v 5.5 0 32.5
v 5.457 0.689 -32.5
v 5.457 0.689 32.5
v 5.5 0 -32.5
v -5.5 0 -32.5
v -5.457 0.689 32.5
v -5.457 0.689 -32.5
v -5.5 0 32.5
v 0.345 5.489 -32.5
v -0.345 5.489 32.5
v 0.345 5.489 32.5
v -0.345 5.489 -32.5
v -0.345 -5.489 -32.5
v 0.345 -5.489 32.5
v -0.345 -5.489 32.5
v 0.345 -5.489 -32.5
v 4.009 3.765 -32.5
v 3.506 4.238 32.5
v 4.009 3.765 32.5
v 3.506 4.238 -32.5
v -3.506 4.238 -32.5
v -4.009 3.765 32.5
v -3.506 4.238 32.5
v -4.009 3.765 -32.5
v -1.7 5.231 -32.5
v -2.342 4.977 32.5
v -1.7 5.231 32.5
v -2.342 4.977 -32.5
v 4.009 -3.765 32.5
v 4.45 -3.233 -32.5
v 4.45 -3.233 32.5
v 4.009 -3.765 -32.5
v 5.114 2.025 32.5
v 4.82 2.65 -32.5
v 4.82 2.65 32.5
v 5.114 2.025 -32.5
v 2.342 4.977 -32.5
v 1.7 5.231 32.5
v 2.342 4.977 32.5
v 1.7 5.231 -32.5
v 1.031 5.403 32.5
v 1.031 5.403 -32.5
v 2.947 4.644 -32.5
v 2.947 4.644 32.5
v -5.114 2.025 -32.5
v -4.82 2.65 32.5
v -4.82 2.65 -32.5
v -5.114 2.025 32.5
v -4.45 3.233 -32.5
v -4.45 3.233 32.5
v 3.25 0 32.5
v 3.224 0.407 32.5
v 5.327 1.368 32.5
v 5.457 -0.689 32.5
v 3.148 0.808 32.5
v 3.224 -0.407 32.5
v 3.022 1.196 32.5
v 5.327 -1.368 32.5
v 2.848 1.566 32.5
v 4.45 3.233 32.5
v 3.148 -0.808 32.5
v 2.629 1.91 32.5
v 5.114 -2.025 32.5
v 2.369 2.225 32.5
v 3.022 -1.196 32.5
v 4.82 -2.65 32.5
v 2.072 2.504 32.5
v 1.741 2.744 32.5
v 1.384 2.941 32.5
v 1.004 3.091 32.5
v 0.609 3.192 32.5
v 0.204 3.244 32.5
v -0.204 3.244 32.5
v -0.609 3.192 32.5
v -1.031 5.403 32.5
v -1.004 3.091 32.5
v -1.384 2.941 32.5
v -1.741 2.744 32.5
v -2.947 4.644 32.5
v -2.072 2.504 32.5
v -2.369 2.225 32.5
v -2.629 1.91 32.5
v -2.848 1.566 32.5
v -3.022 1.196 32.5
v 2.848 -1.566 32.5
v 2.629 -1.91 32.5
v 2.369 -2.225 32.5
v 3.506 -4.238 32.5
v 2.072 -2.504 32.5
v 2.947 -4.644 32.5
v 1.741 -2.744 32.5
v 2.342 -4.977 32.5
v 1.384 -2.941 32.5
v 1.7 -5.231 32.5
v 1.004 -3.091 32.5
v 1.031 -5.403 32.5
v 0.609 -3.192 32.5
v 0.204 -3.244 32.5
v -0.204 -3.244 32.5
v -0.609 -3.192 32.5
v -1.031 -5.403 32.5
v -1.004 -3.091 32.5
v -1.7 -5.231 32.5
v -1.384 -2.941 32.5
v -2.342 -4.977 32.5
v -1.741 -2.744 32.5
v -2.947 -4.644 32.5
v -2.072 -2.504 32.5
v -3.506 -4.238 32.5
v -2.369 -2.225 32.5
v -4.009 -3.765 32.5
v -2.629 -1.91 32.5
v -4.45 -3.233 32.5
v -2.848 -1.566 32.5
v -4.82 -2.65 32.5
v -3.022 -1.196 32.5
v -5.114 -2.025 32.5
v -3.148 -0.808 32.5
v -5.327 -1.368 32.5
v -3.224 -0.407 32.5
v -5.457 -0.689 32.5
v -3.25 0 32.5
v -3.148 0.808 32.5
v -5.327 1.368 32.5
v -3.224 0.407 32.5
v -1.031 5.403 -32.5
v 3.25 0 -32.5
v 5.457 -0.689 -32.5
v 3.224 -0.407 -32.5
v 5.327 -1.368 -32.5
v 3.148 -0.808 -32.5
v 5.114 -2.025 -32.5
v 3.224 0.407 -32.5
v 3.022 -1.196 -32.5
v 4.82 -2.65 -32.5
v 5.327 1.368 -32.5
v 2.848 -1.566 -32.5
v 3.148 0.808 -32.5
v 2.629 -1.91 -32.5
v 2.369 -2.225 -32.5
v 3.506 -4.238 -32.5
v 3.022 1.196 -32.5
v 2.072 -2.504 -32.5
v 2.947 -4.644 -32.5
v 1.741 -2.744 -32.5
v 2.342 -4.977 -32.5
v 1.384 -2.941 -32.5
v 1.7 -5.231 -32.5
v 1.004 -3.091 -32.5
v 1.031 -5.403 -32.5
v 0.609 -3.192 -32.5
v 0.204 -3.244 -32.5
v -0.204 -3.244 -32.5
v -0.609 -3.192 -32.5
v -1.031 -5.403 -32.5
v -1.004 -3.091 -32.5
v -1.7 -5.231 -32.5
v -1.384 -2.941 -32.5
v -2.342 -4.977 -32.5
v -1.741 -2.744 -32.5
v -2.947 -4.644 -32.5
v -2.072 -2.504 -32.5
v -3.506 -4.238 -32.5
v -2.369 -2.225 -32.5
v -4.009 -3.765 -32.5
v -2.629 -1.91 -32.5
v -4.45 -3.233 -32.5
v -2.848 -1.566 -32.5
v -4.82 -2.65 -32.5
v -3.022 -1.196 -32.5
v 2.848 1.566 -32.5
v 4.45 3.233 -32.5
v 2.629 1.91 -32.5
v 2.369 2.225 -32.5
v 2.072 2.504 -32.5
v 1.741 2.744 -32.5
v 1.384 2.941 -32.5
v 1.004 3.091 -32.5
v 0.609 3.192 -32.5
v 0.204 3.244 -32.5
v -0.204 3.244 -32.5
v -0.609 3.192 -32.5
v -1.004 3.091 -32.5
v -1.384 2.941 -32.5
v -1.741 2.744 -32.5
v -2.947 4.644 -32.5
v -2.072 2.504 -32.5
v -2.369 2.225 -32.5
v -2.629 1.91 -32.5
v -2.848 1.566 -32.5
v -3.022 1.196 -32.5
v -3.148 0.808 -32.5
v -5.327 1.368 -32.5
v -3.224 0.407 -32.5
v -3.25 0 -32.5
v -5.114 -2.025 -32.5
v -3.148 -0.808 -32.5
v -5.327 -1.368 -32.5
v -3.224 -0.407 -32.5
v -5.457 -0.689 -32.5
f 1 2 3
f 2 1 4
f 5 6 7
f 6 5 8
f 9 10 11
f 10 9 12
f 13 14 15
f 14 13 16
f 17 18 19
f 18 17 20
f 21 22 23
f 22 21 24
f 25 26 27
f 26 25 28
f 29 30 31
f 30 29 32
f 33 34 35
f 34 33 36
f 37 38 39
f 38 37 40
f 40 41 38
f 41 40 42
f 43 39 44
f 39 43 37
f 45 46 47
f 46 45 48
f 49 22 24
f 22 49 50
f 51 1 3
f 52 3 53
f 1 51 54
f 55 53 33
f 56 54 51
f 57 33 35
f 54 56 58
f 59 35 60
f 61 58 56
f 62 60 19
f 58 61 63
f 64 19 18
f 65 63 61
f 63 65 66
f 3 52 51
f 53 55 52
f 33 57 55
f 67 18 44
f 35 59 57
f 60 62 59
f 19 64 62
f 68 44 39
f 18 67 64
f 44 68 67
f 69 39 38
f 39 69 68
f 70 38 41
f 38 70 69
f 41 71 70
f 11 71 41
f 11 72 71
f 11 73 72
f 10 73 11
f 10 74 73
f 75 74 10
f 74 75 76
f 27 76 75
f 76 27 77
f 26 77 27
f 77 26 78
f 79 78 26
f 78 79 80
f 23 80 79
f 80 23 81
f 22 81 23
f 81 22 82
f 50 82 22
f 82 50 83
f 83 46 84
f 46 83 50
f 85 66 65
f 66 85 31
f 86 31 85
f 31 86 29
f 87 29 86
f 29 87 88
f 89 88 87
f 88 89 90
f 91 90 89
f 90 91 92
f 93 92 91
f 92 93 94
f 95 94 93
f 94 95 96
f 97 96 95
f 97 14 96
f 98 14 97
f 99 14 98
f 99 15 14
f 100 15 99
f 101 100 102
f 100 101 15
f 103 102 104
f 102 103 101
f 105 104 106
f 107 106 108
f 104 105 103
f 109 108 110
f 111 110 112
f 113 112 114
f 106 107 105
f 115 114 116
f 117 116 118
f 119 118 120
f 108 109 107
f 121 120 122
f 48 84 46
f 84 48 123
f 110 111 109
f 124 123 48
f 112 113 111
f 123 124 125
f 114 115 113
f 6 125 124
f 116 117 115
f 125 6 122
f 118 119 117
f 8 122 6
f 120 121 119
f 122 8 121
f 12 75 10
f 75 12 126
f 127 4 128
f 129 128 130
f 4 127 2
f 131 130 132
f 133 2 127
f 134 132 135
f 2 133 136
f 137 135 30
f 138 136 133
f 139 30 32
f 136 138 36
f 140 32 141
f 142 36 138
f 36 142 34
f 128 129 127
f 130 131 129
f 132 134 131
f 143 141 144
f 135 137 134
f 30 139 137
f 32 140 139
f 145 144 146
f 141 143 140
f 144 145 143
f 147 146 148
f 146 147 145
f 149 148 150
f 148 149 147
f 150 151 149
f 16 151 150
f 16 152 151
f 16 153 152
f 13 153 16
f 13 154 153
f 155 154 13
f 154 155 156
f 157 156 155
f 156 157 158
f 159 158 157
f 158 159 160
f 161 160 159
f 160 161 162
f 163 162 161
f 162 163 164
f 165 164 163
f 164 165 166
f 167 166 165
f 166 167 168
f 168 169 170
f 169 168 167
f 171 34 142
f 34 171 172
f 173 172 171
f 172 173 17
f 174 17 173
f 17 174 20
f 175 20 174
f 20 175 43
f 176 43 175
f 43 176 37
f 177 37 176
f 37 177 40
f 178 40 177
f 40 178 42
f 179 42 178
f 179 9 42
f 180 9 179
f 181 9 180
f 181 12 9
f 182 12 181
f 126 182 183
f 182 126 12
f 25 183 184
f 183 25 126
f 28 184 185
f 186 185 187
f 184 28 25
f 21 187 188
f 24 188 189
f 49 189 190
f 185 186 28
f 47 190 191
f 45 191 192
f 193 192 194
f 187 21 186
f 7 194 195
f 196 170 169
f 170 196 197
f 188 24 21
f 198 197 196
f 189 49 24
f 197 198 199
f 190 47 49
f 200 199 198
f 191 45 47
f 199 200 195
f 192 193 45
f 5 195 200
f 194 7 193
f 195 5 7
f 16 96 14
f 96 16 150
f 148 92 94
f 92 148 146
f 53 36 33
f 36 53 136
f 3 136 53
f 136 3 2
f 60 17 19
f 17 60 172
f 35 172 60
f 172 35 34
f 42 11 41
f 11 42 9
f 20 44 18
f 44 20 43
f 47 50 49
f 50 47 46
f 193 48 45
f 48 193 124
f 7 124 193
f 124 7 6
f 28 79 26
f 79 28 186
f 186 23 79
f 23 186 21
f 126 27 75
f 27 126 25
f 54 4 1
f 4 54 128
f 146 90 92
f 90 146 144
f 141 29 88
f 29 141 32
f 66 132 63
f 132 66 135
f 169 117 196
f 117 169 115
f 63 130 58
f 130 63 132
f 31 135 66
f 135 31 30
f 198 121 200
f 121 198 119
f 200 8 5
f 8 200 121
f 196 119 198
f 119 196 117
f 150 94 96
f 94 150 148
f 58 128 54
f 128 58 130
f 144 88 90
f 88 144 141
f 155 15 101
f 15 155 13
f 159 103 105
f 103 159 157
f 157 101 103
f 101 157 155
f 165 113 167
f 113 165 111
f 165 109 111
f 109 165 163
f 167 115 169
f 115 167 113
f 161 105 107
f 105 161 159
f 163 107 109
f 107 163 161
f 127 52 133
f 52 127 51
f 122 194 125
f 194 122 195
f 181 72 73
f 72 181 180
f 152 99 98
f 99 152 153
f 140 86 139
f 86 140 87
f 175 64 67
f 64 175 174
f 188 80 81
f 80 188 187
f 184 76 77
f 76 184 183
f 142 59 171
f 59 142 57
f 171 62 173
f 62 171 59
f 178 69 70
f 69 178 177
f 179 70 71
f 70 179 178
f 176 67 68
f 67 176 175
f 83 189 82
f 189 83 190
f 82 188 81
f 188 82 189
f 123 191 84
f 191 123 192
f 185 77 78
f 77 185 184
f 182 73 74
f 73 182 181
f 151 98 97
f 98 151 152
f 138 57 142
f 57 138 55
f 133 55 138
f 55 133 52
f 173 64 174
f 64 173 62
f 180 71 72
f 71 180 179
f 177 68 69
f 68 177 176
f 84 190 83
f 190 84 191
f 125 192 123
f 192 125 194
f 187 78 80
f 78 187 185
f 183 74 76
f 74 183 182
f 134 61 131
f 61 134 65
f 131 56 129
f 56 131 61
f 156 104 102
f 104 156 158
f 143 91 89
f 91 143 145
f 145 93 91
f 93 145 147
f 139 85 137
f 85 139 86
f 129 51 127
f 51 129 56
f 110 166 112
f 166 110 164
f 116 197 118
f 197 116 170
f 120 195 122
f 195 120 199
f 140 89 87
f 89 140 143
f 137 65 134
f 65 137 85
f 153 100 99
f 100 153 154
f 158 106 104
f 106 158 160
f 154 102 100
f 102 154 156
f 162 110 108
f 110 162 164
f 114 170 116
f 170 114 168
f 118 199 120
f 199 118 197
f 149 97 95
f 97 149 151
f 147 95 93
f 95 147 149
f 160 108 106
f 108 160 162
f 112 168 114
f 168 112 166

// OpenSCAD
$fn = 50;


difference() {
	union() {
		translate(v = [0, 0, -32.5000000000]) {
			cylinder(h = 65, r = 5.5000000000);
		}
	}
	union() {
		translate(v = [0, 0, -100.0000000000]) {
			cylinder(h = 200, r = 3.2500000000);
		}
	}
}
